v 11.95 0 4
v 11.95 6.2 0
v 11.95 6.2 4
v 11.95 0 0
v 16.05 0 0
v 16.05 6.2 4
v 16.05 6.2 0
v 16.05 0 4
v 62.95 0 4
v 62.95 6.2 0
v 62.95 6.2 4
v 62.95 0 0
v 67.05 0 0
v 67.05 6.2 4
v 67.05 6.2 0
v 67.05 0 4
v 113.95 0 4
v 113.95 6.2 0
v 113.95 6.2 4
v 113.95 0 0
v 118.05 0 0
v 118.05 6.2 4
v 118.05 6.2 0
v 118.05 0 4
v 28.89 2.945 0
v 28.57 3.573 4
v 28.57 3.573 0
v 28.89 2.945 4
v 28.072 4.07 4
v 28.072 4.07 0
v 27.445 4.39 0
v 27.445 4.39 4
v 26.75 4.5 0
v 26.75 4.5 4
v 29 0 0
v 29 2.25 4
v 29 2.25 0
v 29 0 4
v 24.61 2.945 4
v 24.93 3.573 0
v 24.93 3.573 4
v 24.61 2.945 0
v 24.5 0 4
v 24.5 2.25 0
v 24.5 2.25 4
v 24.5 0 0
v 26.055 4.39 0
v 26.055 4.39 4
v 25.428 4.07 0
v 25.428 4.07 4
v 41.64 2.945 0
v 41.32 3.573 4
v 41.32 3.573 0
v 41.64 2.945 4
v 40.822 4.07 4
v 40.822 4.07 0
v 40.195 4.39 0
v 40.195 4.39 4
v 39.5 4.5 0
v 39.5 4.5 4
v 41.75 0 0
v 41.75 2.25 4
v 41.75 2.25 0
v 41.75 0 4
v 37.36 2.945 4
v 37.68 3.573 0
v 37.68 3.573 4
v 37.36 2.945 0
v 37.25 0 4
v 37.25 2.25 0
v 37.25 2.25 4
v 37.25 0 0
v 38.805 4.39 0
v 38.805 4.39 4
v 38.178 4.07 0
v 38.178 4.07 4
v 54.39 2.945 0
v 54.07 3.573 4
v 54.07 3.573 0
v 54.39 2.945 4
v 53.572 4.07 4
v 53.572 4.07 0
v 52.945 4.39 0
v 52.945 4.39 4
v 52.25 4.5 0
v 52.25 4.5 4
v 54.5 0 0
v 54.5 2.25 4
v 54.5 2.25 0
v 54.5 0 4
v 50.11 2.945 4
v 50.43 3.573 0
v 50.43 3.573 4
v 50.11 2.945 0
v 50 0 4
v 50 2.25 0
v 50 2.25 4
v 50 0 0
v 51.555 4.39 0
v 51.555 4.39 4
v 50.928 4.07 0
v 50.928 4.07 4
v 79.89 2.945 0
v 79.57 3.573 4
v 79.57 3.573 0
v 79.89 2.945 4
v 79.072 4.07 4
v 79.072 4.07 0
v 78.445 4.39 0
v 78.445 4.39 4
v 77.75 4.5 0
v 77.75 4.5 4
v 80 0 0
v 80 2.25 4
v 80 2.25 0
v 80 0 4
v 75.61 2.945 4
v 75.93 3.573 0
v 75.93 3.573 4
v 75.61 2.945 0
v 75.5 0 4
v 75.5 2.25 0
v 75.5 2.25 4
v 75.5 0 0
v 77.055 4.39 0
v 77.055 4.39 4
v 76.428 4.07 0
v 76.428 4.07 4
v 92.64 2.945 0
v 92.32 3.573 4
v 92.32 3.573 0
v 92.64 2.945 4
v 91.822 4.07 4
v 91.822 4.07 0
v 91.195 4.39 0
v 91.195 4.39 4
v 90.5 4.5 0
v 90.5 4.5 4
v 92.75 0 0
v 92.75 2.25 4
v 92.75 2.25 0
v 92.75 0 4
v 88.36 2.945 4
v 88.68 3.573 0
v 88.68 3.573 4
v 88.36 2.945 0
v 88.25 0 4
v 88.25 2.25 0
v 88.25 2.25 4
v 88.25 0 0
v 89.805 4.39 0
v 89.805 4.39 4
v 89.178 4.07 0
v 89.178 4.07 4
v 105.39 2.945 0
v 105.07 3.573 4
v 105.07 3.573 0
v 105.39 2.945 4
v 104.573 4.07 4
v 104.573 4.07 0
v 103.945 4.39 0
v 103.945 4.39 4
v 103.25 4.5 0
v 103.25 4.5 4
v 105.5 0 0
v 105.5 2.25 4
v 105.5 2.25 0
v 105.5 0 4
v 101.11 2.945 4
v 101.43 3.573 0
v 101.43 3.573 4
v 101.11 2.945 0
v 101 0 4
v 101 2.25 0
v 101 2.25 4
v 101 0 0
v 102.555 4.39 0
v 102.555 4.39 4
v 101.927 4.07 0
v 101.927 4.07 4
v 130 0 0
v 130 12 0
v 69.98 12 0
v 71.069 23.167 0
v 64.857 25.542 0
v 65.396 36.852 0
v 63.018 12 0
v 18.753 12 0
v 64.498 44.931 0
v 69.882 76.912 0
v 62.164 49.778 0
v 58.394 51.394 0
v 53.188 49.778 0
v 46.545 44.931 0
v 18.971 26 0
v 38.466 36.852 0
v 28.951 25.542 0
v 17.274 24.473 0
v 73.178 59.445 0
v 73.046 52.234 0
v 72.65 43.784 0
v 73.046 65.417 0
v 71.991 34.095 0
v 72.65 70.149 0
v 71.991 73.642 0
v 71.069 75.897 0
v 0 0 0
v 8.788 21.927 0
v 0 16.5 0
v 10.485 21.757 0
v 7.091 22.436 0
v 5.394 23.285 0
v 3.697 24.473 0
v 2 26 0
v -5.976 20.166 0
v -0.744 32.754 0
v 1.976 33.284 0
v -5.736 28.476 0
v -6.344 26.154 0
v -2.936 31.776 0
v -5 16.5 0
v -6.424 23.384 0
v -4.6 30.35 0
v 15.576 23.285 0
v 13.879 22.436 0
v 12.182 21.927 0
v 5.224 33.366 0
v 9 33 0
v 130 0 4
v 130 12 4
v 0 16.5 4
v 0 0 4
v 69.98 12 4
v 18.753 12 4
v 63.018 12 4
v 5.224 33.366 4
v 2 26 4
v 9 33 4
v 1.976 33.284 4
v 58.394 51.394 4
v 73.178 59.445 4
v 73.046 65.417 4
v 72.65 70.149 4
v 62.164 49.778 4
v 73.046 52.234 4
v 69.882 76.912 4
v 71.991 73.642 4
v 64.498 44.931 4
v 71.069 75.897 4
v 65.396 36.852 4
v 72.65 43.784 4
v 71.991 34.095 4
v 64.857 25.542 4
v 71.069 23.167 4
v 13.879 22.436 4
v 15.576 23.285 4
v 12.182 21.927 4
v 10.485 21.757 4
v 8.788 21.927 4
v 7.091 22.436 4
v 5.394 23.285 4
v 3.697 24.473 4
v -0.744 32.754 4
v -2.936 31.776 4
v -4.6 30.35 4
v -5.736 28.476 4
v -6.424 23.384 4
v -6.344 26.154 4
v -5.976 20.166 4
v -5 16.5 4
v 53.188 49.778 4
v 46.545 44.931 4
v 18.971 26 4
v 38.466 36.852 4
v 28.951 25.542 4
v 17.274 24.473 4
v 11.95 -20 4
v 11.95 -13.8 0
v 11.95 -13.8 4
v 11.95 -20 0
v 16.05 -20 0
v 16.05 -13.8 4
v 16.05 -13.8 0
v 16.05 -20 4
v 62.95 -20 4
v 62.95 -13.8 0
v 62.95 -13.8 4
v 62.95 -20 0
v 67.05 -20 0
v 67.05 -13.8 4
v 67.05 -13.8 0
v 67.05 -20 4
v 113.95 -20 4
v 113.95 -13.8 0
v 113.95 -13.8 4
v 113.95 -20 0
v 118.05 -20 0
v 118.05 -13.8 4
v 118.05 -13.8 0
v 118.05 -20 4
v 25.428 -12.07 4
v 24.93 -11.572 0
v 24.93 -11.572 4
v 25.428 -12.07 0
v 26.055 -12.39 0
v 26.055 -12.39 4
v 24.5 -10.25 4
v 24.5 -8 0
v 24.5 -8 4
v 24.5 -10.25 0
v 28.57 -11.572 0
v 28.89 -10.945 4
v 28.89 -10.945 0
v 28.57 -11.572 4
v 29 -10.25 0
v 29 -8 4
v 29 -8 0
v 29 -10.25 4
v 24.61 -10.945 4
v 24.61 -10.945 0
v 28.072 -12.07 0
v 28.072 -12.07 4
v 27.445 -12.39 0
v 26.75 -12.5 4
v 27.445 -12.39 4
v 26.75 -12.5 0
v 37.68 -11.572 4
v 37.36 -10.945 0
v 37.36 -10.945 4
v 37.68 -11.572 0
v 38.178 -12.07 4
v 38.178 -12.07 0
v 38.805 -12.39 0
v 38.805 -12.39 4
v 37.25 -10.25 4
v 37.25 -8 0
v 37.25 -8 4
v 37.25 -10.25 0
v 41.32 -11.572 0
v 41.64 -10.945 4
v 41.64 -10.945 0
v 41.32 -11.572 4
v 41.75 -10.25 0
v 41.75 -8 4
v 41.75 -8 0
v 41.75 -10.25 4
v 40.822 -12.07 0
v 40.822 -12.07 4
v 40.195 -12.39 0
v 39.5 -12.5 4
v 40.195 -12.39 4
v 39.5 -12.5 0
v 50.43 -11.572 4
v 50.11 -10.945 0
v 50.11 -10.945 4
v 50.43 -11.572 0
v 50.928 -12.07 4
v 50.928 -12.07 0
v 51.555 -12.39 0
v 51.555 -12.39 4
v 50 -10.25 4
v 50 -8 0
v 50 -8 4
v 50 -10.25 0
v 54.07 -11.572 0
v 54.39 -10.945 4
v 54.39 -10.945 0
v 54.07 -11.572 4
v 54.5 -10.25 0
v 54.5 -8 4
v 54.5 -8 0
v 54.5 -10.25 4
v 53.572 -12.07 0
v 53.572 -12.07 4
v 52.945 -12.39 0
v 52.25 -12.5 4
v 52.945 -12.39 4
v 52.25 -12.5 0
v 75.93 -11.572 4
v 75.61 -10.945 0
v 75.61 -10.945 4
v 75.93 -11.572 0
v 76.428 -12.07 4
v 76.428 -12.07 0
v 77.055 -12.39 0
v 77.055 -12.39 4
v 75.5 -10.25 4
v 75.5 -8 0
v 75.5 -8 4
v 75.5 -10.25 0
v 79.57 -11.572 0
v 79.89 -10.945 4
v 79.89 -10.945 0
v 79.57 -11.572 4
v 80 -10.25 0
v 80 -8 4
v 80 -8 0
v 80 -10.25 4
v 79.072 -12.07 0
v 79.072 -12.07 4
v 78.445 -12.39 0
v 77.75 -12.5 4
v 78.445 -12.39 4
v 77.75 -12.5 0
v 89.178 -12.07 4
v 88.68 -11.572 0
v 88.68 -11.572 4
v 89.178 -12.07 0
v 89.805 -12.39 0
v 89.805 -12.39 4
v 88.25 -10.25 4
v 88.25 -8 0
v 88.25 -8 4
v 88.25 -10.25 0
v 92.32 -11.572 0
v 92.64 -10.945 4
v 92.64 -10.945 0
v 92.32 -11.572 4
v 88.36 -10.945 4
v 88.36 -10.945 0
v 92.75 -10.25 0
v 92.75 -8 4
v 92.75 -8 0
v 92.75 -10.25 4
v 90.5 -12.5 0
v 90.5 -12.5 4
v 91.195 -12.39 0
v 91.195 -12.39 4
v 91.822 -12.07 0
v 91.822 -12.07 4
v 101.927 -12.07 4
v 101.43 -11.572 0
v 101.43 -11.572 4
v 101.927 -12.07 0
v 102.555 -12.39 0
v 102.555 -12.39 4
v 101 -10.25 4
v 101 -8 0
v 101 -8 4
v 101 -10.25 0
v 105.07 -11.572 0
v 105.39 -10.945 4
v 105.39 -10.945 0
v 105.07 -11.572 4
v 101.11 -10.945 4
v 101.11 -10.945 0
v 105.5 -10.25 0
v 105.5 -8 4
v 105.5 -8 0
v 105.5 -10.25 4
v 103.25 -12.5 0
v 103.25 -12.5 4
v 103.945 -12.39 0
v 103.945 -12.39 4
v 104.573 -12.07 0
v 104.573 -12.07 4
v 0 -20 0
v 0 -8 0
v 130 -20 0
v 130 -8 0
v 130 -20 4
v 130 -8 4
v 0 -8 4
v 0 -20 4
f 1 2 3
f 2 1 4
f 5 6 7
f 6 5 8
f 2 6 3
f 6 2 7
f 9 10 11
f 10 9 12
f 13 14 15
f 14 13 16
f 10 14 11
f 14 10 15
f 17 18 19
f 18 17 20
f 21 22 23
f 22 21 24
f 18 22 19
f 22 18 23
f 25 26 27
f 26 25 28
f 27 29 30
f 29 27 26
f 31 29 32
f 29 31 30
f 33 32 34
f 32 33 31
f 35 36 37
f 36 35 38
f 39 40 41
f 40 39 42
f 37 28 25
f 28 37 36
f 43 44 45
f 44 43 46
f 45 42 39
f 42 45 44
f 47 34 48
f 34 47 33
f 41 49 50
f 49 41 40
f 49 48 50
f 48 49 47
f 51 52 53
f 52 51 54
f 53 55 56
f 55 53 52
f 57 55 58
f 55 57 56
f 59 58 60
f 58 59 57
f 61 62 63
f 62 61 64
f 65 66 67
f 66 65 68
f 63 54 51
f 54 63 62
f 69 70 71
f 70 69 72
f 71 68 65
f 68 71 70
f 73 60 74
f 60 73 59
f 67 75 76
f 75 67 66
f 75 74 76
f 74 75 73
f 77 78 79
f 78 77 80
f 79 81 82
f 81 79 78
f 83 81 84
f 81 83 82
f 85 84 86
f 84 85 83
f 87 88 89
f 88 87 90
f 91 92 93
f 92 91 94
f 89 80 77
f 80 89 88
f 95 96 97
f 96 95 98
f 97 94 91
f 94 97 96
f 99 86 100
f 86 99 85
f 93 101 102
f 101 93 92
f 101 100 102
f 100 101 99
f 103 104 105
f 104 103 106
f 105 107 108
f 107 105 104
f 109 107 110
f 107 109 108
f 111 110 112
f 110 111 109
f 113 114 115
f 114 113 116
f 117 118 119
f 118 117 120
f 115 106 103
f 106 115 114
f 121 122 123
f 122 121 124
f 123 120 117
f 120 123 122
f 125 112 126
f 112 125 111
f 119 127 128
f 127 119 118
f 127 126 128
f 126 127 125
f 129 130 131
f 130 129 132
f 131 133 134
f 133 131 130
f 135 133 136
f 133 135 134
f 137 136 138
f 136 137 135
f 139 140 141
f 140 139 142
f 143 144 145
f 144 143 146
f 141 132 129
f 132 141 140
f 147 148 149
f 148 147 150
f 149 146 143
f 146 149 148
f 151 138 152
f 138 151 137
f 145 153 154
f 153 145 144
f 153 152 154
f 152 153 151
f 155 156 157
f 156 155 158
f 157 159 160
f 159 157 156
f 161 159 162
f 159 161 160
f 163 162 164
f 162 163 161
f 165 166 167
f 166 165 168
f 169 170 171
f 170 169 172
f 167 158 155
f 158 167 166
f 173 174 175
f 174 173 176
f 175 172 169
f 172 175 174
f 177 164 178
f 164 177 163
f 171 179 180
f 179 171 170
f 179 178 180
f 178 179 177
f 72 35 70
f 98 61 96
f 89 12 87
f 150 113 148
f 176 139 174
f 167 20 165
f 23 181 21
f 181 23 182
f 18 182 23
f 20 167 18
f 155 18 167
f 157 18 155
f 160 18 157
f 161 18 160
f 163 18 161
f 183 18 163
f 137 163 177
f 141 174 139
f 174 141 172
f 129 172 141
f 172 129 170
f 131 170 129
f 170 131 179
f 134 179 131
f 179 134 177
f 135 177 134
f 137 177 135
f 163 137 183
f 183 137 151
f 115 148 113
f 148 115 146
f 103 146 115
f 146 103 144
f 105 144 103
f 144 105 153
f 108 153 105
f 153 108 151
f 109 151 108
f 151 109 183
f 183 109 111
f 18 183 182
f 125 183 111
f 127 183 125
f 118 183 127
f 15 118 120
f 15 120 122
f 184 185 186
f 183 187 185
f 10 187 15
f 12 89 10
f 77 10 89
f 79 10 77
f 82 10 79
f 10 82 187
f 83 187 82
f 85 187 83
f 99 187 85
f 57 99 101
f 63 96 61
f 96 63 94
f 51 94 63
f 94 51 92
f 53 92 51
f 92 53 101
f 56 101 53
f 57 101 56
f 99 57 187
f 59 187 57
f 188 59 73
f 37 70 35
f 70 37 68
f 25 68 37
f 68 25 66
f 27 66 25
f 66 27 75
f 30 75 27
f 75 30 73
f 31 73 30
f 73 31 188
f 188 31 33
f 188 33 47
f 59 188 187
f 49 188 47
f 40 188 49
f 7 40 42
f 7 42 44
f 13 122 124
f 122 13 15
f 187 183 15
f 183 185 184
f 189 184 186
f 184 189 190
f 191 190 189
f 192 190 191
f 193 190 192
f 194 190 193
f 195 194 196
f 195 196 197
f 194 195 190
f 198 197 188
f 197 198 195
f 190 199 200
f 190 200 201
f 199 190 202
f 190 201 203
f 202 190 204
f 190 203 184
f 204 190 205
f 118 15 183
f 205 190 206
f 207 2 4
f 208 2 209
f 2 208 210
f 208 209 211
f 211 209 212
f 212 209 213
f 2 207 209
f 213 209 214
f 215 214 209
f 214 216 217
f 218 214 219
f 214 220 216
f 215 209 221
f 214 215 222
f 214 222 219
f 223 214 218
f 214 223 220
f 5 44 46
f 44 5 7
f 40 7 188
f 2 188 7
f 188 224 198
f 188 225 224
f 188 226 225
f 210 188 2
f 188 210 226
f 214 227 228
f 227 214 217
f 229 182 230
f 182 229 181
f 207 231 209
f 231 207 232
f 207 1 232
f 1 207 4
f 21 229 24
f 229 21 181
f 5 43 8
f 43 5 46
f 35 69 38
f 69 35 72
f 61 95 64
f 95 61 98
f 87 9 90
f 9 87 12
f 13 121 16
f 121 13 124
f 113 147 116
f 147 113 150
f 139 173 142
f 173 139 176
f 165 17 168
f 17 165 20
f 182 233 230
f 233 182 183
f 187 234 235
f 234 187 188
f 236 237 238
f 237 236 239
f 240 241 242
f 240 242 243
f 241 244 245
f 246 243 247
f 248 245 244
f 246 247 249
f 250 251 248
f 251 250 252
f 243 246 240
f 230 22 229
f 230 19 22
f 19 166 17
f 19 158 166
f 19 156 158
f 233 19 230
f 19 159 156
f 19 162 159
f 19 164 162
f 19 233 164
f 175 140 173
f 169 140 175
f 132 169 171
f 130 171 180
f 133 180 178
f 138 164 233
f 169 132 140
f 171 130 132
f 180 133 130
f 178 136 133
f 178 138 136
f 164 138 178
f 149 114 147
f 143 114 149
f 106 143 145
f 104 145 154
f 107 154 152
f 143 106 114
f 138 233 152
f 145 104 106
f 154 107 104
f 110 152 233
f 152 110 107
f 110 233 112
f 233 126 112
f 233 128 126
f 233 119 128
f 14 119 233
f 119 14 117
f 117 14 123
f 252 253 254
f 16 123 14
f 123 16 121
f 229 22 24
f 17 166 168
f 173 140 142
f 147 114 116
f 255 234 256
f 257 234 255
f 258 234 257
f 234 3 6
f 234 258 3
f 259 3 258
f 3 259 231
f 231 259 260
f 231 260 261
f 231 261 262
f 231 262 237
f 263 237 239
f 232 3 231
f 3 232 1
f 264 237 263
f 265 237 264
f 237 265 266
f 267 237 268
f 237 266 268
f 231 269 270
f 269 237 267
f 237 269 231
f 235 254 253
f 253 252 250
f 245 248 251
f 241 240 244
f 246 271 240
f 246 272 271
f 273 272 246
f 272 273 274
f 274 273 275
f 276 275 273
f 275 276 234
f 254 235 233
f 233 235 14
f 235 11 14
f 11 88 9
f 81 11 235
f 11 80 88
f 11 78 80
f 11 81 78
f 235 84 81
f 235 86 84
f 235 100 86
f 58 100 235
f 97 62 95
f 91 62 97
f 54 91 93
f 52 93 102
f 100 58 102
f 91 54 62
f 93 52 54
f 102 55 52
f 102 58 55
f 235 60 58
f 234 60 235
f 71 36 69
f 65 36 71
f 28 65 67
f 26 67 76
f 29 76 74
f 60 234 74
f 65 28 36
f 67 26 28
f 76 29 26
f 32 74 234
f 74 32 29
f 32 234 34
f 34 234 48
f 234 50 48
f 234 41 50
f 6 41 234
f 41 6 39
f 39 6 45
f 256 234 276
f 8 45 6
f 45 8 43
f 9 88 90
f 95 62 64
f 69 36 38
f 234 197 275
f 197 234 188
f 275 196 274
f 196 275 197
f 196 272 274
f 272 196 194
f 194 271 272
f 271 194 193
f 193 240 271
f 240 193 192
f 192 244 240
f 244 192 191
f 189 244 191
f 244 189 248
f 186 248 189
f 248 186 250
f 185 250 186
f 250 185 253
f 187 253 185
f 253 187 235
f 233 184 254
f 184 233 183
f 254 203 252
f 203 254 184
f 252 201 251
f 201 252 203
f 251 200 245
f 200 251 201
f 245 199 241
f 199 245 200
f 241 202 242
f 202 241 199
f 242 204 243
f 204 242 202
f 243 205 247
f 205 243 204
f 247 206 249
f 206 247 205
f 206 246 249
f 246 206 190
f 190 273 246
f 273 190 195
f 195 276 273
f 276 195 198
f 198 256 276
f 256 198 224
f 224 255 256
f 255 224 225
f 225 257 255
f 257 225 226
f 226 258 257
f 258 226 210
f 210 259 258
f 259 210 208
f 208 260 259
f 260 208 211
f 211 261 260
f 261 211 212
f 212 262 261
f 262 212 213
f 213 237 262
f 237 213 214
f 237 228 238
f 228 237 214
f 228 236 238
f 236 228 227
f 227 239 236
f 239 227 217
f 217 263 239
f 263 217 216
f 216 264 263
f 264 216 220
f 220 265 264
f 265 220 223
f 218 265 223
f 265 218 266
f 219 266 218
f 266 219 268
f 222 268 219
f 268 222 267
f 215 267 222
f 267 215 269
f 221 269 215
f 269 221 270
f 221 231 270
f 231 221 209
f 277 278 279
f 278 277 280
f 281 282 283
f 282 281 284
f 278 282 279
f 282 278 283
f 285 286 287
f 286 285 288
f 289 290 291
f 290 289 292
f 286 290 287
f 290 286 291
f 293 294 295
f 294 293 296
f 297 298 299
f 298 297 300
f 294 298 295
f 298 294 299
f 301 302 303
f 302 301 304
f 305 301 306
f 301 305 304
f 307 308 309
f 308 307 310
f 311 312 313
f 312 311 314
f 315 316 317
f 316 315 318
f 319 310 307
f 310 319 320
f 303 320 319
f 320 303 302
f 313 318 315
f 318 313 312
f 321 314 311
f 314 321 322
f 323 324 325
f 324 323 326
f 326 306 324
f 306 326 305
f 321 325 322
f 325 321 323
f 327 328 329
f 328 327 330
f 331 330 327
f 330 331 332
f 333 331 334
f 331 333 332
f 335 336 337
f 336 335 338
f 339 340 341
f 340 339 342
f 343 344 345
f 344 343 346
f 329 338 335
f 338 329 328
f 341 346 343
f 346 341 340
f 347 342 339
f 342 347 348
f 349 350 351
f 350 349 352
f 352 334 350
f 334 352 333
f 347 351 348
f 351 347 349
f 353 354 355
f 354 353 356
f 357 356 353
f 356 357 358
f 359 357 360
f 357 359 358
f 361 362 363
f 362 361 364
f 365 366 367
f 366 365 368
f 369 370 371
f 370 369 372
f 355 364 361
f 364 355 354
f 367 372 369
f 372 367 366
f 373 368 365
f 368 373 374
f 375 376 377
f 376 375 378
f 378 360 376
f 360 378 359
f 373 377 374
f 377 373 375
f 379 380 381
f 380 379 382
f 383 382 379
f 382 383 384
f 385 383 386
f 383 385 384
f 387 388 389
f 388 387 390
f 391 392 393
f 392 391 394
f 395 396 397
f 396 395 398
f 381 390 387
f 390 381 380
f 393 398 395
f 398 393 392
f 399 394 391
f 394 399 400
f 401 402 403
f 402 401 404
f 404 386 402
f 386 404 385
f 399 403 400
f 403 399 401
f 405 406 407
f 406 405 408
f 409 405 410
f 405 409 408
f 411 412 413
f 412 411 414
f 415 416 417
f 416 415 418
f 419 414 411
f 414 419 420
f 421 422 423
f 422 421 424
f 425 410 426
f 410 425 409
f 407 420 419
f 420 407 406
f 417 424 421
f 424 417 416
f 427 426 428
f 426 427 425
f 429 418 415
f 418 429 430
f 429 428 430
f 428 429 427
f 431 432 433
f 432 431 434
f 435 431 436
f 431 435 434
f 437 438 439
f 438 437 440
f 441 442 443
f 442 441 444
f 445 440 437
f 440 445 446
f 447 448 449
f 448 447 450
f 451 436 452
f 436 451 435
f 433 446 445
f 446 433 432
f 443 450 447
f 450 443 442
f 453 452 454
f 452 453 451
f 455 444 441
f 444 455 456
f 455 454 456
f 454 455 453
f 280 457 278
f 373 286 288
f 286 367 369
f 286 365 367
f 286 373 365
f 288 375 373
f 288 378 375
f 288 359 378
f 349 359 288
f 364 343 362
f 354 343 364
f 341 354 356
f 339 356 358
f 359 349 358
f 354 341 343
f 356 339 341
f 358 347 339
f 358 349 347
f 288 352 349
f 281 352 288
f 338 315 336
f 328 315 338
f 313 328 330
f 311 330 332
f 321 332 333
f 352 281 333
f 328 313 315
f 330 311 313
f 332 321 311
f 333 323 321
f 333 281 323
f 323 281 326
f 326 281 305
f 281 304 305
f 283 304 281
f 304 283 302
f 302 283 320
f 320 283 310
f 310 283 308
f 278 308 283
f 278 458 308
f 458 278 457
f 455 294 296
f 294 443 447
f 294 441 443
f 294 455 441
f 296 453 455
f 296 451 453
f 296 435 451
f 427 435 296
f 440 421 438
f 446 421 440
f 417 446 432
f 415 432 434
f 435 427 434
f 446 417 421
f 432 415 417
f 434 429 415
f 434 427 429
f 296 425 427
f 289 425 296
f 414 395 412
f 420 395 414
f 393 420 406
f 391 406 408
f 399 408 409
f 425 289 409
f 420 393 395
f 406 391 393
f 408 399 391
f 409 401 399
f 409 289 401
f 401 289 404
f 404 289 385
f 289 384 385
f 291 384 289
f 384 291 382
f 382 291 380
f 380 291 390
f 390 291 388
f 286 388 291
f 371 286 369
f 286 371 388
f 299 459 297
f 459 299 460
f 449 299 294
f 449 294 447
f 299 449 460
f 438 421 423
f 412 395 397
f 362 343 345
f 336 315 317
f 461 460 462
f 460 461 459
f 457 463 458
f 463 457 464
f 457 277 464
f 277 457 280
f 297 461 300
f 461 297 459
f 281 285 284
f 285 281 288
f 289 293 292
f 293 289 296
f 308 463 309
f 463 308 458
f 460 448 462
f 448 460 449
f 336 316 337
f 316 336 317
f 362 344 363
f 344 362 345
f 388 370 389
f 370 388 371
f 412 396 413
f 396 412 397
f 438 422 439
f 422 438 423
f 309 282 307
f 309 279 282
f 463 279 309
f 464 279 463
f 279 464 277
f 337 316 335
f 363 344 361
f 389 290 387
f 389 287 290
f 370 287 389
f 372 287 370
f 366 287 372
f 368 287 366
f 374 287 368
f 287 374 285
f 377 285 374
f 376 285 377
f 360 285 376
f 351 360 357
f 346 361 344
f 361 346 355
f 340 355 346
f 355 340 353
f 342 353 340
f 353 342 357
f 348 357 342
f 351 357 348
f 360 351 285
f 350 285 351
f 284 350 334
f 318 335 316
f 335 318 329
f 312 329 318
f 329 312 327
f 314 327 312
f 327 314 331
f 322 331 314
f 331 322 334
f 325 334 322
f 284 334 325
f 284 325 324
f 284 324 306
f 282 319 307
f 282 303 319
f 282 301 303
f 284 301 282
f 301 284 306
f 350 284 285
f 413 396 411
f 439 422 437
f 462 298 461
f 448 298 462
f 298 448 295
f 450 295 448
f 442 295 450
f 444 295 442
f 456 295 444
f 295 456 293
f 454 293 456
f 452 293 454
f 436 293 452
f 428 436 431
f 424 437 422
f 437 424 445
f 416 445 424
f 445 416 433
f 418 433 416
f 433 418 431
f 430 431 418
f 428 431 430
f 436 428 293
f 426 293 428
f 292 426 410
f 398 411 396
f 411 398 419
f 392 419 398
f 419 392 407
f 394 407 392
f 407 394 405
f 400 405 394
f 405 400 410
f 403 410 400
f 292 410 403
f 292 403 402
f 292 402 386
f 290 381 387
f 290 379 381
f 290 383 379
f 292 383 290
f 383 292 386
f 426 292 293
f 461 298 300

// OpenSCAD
// file: vector.scad
function is_nan(x) = x != x ;

// reverse vector
function reverse(v) = [for (i =[len(v)-1:-1:0]) v[i]];
// repeat vector n-times
function repeat(v, n) = [for (i=[0:n*len(v)-1])  v[ i%len(v) ] ];
// allow negative indexes for vector (counting from the back). -1 is last element in array
function v_index(v, n) = is_undef(n) ? len(v) : n < 0 ? len(v)+n : n ;
// cut slice of vertor. `start` included , `end` excluded.
function slice(v, start, end=undef) = [for (i=[start:v_index(v,end)-1]) v[i] ];

function v_add(v, n) = [for (i=[0:len(v)-1]) v[i]+n ];

assert(reverse([1,2,3]) == [3,2,1]);
assert(repeat([1,2],3) ==  [1, 2, 1, 2, 1, 2]);
assert(v_index([1,2,3],-1)==2);
assert(v_index([1,2,3],0) == 0);
assert(v_index([1,2,3],undef)==3);
assert(slice([1,2,3],1,-1)==[2]);
assert(slice([1,2,3],1)==[2,3]);
assert(v_add([1,2,3],1)==[2,3,4]);
// file: 2d.scad
use <vector.scad>

function max_x(a, i = 0) = (len(a) == 0) ? 0 : (i < len(a) - 1) ? max(a[i][0], max_x(a, i+1)) : a[i][0];
function shift_x(a, dx, scaler=1) = [for ( p=a) [scaler*p[0]+dx,p[1]] ];

function scale_poly(a, s=[1,1]) = [for (p=a) [ s[0]*p[0], s[1]*p[1] ]];
function shift_poly(a, d=[0,0]) = [for (p=a) [ d + p ]];

function inverse_x(a) = shift_x(reverse(a),max_x(a),-1);
function mirror_x(a) = shift_x(reverse(a),0,-1);

function symmetry_x(a) = scale_poly(reverse(a),s=[-1,1]);
function symmetry_y(a) = scale_poly(reverse(a),s=[1,-1]);

function concat_with_undefs(prev,next) = 
    len(prev) == 0 ? next : 
        let (prev_last_p = prev[v_index(prev,-1)]) 
        is_undef(prev_last_p[1])  
            ? concat(slice(prev,0,-1),[[prev_last_p[0],next[0][1]]],next) 
            : is_undef(next[0][1]) 
                ? concat(prev, [[next[0][0],prev_last_p[1]]], slice(next,1)) 
                : concat(prev, next) ;

function join_poly(polys, r = [], i=0) = (i < len(polys)) ? 
    join_poly( polys, concat_with_undefs(r,shift_x(polys[i],max_x(r))) ,i+1) : r;

function line_segment(p1,p2) = [p1,[p2[0]-p1[0], p2[1] - p1[1]]];

function ls_slope(ls) = ls[1][1]/ls[1][0] ;

function ls_distance(ls) = sqrt(pow(ls[1][1],2)+pow(ls[1][0],2));

function ls_angle(ls) = 
    let (ss = sign(ls[1][1]) == -1 ? -1 : 1)
    let (sc = sign(ls[1][0]) == -1 ? -1 : 1)
    let (ts = asin(ls[1][1]/ls_distance(ls))) 
    ts != 0 ? ( sc == -1 ? ss * 180 - ts : ts ) : ss*acos(ls[1][0]/ls_distance(ls))  ;
    
assert(ls_angle([[0, 0], [1, 0]])==0);
assert(ls_angle([[0, 0], [-1, 0]])==180);


function angle_diff_cw(a1, a2) = a1 < a2 ? angle_diff_cw(a1+360, a2) : a1 - a2 ;

function angle_diff_ccw(a1, a2) = angle_diff_cw(a2, a1);

function ls_midpoint(ls) = ls[0]+ls[1]/2;

function ls_endpoint(ls) = ls[0]+ls[1];

function line(slope,pt) = [slope, pt[1]-slope*pt[0]];

function l_y(l,x) = l[0]*x + l[1];

function l_segment(l,x1,x2) = line_segment([x1, l_y(l,x1)], [x2, l_y(l,x2)]);

function ls_line(ls) = let(slope=ls_slope(ls)) line(slope,ls[0]);

function ls_perpendicular(ls) = 
    let (l = ls_line(ls)) 
    let (mp = ls_midpoint(ls))
    line(-1/l[0], mp);

function intersect_lines(l1, l2) = 
    let (x = (l2[1]-l1[1])/(l1[0]-l2[0]))
    [x,l_y(l1,x)];

function interpolate_point(ls,fraction) =  [
    ls[0][0] + fraction*ls[1][0],
    ls[0][1] + fraction*ls[1][1]
];


function bezier_curve( a, b, c ) =
    len(a)==3 ? _bezier_curve(a[0],a[1],a[2]) : _bezier_curve(a,b,c);

function _bezier_curve( p1, p2, p3 ) =
    [line_segment(p1,p2), line_segment(p2, p3)];

function curve_point(bc, fraction) =
    interpolate_point(
        line_segment(
            interpolate_point(bc[0],fraction), 
            interpolate_point(bc[1], fraction)), 
        fraction);

function bc_poly(bc, n_points=10) = [for ( f = [0:1/n_points:1]) curve_point(bc, f)] ;

function rake_poly(up_ramp, down_to_valley, n_of_valleys) = 
    join_poly(concat(
        [up_ramp],
        repeat(
            [
                down_to_valley, 
                inverse_x(down_to_valley) // up on other side of the valley
            ], 
            n_of_valleys),
        [inverse_x(up_ramp)] // down ramp
    ));

function arc_point(a,f) = 
    let(c = a[0])
    let(r = a[1])
    let(initial_angle = a[2])
    let(cw = a[3])
    let(range = a[4])
    let (angle = cw ? initial_angle - f * range : initial_angle + f * range)
    c+[r*cos(angle),r*sin(angle)];

function arc_poly(a, n_points=10) = [for ( f = [0:1/n_points:1]) arc_point(a, f)] ;

function arc( a, b, c ) =
    len(a)==3 ? _arc(a[0],a[1],a[2]) : _arc(a,b,c);

function _arc( p1, p2, p3 ) =
    let(ls1 = line_segment(p1,p2))
    let(ls2 = line_segment(p2,p3))
    let(ls3 = line_segment(p1,p3))    
    let(lp1 = ls_perpendicular(ls1))
    let(lp2 = ls_perpendicular(ls2))
    let(lp3 = ls_perpendicular(ls3))
    let(c12 = intersect_lines(lp1,lp2))
    let(c23 = intersect_lines(lp2,lp3))
    let(c13 = intersect_lines(lp1,lp3))
    let(c = !is_nan(c23[0]) ? c23 : !is_nan(c13[0])? c13 : c12 )
    let(r1 = line_segment(c,p1))
    let(r2 = line_segment(c,p2))
    let(r3 = line_segment(c,p3))
    let(r = ls_distance(r1))
    let(a1 = ls_angle(r1))
    let(a2 = ls_angle(r2))
    let(a3 = ls_angle(r3))
    let(cw = angle_diff_cw(a1,a2) < angle_diff_cw(a1,a3))
    let(a_diff = cw ? angle_diff_cw(a1,a3) : angle_diff_ccw(a1,a3))
    [c,r,a1,cw,a_diff];


// linear interpolation or extrapolation (middle by default or any ratio) 
// using 2 points `a` and `b`
function mid(a,b,ratio=.5) = b + (a-b)*ratio ; 

function triangle(a,b,split=.5,height=.5) =
    let (delta = (mid(a,b,height)-b) * [[0,1],[-1,0]])
    let (z = mid(a,b,split) + delta)
    [a,z,b];

assert(arc([0,0],[0,1],[1,1])==arc([[0,0],[0,1],[1,1]]));
assert(bezier_curve([0,0],[0,1],[1,1])==bezier_curve([[0,0],[0,1],[1,1]]));

// echo(arc([0,0],[0,1],[1,1]));
// echo(arc(triangle([0,0],[1,1],.5,-.5)));

assert(arc([0,0],[0,1],[1,1])==arc(triangle([0,0],[1,1],.5,-.5)));
assert(arc([1,1],[1,2],[2,2])==arc(triangle([1,1],[2,2],.5,-.5)));

// echo(arc([0,0],[1,0],[1,1]));
// echo(arc(triangle([0,0],[1,1],.5,.5)));

assert(arc([0,0],[1,0],[1,1])==arc(triangle([0,0],[1,1],.5,.5)));
assert(arc([1,1],[2,1],[2,2])==arc(triangle([1,1],[2,2],.5,.5)));

// echo(arc(triangle([1,0], [-1,0])));
assert(arc(triangle([1,0], [-1,0])) ==  [[0, 0], 1, 0, false, 180]);

// echo(arc(triangle([0,-1], [0,1])));
assert(arc(triangle([0,-1], [0,1])) ==  [[0, 0], 1, -90, false, 180]);

// echo(arc(triangle([0,-1], [0,1],height=-.5)));
assert(arc(triangle([0,-1], [0,1], height=-.5)) ==  [[0, 0], 1, -90, true, 180]);
// main file
e = .05;
overlap = .2;
t = 4;
h = 12;
cable_d = 4.5;
step = 51;
out = h;
lip_h = 16.5;
lip_w = 5;
hook_w = 9;
hook_depth = 7;
spine = 72;
phone_t = 12;
use <2d.scad>

module cable_punchout(){
    cable_r = cable_d / 2; 
    linear_extrude(height=2*e+t)
    polygon(points=concat(
       [[-cable_r,-e]], 
       arc_poly(arc([-cable_r,cable_r],[0,cable_d],[cable_r,cable_r])), 
       [[cable_r,-e]]));
}

module slot(){
    dx = t/2+e;
    linear_extrude(height=2*e+t)
    polygon(points=[[-dx,-e],[-dx,h/2+overlap],[dx,h/2+overlap],[dx,-e]]);
}

module punchouts(n_steps, same_side){
    c_step = step/4;
    union(){
        for(i=[0:n_steps]) 
            translate([out+t/2+(step)*i,0,-e]) slot();
        for(i=[0:n_steps-1]) {
            x=out+t/2+(step)*i;
            for(j=[1:3])
                translate([x + j*c_step ,same_side ? 0 : h ,-e]) 
                rotate([0,0,same_side ? 0 : 180]) 
                cable_punchout();
        }
    };
}

module bar(n_steps){
    difference(){
        linear_extrude(t)
            square([step*n_steps + t + 2*out, h], false);
        punchouts(n_steps, false);
    }

}

module stand(n_steps){
    top_hook=[hook_w,lip_h*2];
    bottom_hook = top_hook-[hook_depth,hook_depth];
    bottom_spine = bottom_hook + [phone_t*sqrt(2),0];
    top_spine = bottom_spine + [spine/sqrt(2),spine/sqrt(2)];
    landing=[top_spine[0],11];
    union(){
        difference(){
            linear_extrude(t)
                square([step*n_steps + t + 2*out, h], false);
            punchouts(n_steps, true);
        }

        linear_extrude(t)
        polygon(points=concat(
                [[0,0],[0,lip_h]],
                bc_poly(bezier_curve(triangle([-lip_w,lip_h],top_hook,height=-.8))),
                bc_poly(bezier_curve(triangle(bottom_hook,bottom_spine))),
                bc_poly(bezier_curve(triangle(top_spine,landing,.97,-.1))),
                bc_poly(bezier_curve(triangle(landing-[7,0],[18,11],1.3,1.8)))
                ));
    }
            
}

stand(2);

translate( [0, -20, 0] )
bar(2);

// difference(){
//     union(){
//         linear_extrude(height=d+s)
//             polygon(points=
//                 [[offset,r],[0,r],[-r,0],
//                 [-w2+offset,-h+r],[offset,-h+r]]
//                 );
//         linear_extrude(height=s)
//             polygon(points=concat(
//                 [[offset,c]],
//                 arc_poly(arc([0,c],[-c5*4,c5*3],[-c,0]),20),
//                 [[-w2+offset-b,-h+r],[offset,-h+r]])
//                 );
//     }
//     translate([0,0,-e]) cylinder(r=r, h=d+s+2*e, $fn=50);
// }
